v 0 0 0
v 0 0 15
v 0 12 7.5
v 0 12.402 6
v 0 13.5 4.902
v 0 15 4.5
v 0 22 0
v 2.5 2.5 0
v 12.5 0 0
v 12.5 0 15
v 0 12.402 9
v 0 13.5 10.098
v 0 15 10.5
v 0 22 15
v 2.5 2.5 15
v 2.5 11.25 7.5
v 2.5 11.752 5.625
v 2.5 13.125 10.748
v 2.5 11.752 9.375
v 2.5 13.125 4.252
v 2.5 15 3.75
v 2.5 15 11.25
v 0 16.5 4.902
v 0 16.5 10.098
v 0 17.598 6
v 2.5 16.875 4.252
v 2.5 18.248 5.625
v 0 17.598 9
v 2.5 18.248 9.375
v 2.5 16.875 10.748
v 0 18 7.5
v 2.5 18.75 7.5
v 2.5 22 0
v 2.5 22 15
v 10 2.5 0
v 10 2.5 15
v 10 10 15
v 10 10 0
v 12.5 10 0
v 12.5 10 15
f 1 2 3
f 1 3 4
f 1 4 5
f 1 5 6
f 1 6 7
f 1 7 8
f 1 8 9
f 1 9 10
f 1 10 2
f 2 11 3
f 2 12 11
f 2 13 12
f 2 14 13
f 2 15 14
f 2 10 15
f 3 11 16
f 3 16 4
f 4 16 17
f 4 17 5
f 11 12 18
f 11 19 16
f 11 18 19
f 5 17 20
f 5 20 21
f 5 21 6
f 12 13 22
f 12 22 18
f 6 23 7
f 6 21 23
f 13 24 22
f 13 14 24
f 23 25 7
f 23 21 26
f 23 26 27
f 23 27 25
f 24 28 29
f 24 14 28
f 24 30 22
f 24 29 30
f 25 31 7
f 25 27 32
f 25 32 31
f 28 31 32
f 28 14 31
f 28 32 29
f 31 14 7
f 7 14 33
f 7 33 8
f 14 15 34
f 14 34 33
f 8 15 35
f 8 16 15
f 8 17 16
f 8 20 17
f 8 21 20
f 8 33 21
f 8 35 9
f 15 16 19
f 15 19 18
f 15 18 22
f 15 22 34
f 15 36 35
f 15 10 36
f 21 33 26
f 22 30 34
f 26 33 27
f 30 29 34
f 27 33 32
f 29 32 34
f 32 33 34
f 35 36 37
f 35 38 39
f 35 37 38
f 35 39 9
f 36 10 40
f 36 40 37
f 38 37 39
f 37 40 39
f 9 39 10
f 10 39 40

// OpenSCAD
difference(){
    cube([2.5, 22, 15]);
    translate([0,15,7.5])
    rotate([0, 90,0])
    cylinder(h=2.5, r1=3, r2=3.75);
};
cube([12.5, 2.5, 15]);
translate([10,0,0])
cube([2.5, 10, 15]);
